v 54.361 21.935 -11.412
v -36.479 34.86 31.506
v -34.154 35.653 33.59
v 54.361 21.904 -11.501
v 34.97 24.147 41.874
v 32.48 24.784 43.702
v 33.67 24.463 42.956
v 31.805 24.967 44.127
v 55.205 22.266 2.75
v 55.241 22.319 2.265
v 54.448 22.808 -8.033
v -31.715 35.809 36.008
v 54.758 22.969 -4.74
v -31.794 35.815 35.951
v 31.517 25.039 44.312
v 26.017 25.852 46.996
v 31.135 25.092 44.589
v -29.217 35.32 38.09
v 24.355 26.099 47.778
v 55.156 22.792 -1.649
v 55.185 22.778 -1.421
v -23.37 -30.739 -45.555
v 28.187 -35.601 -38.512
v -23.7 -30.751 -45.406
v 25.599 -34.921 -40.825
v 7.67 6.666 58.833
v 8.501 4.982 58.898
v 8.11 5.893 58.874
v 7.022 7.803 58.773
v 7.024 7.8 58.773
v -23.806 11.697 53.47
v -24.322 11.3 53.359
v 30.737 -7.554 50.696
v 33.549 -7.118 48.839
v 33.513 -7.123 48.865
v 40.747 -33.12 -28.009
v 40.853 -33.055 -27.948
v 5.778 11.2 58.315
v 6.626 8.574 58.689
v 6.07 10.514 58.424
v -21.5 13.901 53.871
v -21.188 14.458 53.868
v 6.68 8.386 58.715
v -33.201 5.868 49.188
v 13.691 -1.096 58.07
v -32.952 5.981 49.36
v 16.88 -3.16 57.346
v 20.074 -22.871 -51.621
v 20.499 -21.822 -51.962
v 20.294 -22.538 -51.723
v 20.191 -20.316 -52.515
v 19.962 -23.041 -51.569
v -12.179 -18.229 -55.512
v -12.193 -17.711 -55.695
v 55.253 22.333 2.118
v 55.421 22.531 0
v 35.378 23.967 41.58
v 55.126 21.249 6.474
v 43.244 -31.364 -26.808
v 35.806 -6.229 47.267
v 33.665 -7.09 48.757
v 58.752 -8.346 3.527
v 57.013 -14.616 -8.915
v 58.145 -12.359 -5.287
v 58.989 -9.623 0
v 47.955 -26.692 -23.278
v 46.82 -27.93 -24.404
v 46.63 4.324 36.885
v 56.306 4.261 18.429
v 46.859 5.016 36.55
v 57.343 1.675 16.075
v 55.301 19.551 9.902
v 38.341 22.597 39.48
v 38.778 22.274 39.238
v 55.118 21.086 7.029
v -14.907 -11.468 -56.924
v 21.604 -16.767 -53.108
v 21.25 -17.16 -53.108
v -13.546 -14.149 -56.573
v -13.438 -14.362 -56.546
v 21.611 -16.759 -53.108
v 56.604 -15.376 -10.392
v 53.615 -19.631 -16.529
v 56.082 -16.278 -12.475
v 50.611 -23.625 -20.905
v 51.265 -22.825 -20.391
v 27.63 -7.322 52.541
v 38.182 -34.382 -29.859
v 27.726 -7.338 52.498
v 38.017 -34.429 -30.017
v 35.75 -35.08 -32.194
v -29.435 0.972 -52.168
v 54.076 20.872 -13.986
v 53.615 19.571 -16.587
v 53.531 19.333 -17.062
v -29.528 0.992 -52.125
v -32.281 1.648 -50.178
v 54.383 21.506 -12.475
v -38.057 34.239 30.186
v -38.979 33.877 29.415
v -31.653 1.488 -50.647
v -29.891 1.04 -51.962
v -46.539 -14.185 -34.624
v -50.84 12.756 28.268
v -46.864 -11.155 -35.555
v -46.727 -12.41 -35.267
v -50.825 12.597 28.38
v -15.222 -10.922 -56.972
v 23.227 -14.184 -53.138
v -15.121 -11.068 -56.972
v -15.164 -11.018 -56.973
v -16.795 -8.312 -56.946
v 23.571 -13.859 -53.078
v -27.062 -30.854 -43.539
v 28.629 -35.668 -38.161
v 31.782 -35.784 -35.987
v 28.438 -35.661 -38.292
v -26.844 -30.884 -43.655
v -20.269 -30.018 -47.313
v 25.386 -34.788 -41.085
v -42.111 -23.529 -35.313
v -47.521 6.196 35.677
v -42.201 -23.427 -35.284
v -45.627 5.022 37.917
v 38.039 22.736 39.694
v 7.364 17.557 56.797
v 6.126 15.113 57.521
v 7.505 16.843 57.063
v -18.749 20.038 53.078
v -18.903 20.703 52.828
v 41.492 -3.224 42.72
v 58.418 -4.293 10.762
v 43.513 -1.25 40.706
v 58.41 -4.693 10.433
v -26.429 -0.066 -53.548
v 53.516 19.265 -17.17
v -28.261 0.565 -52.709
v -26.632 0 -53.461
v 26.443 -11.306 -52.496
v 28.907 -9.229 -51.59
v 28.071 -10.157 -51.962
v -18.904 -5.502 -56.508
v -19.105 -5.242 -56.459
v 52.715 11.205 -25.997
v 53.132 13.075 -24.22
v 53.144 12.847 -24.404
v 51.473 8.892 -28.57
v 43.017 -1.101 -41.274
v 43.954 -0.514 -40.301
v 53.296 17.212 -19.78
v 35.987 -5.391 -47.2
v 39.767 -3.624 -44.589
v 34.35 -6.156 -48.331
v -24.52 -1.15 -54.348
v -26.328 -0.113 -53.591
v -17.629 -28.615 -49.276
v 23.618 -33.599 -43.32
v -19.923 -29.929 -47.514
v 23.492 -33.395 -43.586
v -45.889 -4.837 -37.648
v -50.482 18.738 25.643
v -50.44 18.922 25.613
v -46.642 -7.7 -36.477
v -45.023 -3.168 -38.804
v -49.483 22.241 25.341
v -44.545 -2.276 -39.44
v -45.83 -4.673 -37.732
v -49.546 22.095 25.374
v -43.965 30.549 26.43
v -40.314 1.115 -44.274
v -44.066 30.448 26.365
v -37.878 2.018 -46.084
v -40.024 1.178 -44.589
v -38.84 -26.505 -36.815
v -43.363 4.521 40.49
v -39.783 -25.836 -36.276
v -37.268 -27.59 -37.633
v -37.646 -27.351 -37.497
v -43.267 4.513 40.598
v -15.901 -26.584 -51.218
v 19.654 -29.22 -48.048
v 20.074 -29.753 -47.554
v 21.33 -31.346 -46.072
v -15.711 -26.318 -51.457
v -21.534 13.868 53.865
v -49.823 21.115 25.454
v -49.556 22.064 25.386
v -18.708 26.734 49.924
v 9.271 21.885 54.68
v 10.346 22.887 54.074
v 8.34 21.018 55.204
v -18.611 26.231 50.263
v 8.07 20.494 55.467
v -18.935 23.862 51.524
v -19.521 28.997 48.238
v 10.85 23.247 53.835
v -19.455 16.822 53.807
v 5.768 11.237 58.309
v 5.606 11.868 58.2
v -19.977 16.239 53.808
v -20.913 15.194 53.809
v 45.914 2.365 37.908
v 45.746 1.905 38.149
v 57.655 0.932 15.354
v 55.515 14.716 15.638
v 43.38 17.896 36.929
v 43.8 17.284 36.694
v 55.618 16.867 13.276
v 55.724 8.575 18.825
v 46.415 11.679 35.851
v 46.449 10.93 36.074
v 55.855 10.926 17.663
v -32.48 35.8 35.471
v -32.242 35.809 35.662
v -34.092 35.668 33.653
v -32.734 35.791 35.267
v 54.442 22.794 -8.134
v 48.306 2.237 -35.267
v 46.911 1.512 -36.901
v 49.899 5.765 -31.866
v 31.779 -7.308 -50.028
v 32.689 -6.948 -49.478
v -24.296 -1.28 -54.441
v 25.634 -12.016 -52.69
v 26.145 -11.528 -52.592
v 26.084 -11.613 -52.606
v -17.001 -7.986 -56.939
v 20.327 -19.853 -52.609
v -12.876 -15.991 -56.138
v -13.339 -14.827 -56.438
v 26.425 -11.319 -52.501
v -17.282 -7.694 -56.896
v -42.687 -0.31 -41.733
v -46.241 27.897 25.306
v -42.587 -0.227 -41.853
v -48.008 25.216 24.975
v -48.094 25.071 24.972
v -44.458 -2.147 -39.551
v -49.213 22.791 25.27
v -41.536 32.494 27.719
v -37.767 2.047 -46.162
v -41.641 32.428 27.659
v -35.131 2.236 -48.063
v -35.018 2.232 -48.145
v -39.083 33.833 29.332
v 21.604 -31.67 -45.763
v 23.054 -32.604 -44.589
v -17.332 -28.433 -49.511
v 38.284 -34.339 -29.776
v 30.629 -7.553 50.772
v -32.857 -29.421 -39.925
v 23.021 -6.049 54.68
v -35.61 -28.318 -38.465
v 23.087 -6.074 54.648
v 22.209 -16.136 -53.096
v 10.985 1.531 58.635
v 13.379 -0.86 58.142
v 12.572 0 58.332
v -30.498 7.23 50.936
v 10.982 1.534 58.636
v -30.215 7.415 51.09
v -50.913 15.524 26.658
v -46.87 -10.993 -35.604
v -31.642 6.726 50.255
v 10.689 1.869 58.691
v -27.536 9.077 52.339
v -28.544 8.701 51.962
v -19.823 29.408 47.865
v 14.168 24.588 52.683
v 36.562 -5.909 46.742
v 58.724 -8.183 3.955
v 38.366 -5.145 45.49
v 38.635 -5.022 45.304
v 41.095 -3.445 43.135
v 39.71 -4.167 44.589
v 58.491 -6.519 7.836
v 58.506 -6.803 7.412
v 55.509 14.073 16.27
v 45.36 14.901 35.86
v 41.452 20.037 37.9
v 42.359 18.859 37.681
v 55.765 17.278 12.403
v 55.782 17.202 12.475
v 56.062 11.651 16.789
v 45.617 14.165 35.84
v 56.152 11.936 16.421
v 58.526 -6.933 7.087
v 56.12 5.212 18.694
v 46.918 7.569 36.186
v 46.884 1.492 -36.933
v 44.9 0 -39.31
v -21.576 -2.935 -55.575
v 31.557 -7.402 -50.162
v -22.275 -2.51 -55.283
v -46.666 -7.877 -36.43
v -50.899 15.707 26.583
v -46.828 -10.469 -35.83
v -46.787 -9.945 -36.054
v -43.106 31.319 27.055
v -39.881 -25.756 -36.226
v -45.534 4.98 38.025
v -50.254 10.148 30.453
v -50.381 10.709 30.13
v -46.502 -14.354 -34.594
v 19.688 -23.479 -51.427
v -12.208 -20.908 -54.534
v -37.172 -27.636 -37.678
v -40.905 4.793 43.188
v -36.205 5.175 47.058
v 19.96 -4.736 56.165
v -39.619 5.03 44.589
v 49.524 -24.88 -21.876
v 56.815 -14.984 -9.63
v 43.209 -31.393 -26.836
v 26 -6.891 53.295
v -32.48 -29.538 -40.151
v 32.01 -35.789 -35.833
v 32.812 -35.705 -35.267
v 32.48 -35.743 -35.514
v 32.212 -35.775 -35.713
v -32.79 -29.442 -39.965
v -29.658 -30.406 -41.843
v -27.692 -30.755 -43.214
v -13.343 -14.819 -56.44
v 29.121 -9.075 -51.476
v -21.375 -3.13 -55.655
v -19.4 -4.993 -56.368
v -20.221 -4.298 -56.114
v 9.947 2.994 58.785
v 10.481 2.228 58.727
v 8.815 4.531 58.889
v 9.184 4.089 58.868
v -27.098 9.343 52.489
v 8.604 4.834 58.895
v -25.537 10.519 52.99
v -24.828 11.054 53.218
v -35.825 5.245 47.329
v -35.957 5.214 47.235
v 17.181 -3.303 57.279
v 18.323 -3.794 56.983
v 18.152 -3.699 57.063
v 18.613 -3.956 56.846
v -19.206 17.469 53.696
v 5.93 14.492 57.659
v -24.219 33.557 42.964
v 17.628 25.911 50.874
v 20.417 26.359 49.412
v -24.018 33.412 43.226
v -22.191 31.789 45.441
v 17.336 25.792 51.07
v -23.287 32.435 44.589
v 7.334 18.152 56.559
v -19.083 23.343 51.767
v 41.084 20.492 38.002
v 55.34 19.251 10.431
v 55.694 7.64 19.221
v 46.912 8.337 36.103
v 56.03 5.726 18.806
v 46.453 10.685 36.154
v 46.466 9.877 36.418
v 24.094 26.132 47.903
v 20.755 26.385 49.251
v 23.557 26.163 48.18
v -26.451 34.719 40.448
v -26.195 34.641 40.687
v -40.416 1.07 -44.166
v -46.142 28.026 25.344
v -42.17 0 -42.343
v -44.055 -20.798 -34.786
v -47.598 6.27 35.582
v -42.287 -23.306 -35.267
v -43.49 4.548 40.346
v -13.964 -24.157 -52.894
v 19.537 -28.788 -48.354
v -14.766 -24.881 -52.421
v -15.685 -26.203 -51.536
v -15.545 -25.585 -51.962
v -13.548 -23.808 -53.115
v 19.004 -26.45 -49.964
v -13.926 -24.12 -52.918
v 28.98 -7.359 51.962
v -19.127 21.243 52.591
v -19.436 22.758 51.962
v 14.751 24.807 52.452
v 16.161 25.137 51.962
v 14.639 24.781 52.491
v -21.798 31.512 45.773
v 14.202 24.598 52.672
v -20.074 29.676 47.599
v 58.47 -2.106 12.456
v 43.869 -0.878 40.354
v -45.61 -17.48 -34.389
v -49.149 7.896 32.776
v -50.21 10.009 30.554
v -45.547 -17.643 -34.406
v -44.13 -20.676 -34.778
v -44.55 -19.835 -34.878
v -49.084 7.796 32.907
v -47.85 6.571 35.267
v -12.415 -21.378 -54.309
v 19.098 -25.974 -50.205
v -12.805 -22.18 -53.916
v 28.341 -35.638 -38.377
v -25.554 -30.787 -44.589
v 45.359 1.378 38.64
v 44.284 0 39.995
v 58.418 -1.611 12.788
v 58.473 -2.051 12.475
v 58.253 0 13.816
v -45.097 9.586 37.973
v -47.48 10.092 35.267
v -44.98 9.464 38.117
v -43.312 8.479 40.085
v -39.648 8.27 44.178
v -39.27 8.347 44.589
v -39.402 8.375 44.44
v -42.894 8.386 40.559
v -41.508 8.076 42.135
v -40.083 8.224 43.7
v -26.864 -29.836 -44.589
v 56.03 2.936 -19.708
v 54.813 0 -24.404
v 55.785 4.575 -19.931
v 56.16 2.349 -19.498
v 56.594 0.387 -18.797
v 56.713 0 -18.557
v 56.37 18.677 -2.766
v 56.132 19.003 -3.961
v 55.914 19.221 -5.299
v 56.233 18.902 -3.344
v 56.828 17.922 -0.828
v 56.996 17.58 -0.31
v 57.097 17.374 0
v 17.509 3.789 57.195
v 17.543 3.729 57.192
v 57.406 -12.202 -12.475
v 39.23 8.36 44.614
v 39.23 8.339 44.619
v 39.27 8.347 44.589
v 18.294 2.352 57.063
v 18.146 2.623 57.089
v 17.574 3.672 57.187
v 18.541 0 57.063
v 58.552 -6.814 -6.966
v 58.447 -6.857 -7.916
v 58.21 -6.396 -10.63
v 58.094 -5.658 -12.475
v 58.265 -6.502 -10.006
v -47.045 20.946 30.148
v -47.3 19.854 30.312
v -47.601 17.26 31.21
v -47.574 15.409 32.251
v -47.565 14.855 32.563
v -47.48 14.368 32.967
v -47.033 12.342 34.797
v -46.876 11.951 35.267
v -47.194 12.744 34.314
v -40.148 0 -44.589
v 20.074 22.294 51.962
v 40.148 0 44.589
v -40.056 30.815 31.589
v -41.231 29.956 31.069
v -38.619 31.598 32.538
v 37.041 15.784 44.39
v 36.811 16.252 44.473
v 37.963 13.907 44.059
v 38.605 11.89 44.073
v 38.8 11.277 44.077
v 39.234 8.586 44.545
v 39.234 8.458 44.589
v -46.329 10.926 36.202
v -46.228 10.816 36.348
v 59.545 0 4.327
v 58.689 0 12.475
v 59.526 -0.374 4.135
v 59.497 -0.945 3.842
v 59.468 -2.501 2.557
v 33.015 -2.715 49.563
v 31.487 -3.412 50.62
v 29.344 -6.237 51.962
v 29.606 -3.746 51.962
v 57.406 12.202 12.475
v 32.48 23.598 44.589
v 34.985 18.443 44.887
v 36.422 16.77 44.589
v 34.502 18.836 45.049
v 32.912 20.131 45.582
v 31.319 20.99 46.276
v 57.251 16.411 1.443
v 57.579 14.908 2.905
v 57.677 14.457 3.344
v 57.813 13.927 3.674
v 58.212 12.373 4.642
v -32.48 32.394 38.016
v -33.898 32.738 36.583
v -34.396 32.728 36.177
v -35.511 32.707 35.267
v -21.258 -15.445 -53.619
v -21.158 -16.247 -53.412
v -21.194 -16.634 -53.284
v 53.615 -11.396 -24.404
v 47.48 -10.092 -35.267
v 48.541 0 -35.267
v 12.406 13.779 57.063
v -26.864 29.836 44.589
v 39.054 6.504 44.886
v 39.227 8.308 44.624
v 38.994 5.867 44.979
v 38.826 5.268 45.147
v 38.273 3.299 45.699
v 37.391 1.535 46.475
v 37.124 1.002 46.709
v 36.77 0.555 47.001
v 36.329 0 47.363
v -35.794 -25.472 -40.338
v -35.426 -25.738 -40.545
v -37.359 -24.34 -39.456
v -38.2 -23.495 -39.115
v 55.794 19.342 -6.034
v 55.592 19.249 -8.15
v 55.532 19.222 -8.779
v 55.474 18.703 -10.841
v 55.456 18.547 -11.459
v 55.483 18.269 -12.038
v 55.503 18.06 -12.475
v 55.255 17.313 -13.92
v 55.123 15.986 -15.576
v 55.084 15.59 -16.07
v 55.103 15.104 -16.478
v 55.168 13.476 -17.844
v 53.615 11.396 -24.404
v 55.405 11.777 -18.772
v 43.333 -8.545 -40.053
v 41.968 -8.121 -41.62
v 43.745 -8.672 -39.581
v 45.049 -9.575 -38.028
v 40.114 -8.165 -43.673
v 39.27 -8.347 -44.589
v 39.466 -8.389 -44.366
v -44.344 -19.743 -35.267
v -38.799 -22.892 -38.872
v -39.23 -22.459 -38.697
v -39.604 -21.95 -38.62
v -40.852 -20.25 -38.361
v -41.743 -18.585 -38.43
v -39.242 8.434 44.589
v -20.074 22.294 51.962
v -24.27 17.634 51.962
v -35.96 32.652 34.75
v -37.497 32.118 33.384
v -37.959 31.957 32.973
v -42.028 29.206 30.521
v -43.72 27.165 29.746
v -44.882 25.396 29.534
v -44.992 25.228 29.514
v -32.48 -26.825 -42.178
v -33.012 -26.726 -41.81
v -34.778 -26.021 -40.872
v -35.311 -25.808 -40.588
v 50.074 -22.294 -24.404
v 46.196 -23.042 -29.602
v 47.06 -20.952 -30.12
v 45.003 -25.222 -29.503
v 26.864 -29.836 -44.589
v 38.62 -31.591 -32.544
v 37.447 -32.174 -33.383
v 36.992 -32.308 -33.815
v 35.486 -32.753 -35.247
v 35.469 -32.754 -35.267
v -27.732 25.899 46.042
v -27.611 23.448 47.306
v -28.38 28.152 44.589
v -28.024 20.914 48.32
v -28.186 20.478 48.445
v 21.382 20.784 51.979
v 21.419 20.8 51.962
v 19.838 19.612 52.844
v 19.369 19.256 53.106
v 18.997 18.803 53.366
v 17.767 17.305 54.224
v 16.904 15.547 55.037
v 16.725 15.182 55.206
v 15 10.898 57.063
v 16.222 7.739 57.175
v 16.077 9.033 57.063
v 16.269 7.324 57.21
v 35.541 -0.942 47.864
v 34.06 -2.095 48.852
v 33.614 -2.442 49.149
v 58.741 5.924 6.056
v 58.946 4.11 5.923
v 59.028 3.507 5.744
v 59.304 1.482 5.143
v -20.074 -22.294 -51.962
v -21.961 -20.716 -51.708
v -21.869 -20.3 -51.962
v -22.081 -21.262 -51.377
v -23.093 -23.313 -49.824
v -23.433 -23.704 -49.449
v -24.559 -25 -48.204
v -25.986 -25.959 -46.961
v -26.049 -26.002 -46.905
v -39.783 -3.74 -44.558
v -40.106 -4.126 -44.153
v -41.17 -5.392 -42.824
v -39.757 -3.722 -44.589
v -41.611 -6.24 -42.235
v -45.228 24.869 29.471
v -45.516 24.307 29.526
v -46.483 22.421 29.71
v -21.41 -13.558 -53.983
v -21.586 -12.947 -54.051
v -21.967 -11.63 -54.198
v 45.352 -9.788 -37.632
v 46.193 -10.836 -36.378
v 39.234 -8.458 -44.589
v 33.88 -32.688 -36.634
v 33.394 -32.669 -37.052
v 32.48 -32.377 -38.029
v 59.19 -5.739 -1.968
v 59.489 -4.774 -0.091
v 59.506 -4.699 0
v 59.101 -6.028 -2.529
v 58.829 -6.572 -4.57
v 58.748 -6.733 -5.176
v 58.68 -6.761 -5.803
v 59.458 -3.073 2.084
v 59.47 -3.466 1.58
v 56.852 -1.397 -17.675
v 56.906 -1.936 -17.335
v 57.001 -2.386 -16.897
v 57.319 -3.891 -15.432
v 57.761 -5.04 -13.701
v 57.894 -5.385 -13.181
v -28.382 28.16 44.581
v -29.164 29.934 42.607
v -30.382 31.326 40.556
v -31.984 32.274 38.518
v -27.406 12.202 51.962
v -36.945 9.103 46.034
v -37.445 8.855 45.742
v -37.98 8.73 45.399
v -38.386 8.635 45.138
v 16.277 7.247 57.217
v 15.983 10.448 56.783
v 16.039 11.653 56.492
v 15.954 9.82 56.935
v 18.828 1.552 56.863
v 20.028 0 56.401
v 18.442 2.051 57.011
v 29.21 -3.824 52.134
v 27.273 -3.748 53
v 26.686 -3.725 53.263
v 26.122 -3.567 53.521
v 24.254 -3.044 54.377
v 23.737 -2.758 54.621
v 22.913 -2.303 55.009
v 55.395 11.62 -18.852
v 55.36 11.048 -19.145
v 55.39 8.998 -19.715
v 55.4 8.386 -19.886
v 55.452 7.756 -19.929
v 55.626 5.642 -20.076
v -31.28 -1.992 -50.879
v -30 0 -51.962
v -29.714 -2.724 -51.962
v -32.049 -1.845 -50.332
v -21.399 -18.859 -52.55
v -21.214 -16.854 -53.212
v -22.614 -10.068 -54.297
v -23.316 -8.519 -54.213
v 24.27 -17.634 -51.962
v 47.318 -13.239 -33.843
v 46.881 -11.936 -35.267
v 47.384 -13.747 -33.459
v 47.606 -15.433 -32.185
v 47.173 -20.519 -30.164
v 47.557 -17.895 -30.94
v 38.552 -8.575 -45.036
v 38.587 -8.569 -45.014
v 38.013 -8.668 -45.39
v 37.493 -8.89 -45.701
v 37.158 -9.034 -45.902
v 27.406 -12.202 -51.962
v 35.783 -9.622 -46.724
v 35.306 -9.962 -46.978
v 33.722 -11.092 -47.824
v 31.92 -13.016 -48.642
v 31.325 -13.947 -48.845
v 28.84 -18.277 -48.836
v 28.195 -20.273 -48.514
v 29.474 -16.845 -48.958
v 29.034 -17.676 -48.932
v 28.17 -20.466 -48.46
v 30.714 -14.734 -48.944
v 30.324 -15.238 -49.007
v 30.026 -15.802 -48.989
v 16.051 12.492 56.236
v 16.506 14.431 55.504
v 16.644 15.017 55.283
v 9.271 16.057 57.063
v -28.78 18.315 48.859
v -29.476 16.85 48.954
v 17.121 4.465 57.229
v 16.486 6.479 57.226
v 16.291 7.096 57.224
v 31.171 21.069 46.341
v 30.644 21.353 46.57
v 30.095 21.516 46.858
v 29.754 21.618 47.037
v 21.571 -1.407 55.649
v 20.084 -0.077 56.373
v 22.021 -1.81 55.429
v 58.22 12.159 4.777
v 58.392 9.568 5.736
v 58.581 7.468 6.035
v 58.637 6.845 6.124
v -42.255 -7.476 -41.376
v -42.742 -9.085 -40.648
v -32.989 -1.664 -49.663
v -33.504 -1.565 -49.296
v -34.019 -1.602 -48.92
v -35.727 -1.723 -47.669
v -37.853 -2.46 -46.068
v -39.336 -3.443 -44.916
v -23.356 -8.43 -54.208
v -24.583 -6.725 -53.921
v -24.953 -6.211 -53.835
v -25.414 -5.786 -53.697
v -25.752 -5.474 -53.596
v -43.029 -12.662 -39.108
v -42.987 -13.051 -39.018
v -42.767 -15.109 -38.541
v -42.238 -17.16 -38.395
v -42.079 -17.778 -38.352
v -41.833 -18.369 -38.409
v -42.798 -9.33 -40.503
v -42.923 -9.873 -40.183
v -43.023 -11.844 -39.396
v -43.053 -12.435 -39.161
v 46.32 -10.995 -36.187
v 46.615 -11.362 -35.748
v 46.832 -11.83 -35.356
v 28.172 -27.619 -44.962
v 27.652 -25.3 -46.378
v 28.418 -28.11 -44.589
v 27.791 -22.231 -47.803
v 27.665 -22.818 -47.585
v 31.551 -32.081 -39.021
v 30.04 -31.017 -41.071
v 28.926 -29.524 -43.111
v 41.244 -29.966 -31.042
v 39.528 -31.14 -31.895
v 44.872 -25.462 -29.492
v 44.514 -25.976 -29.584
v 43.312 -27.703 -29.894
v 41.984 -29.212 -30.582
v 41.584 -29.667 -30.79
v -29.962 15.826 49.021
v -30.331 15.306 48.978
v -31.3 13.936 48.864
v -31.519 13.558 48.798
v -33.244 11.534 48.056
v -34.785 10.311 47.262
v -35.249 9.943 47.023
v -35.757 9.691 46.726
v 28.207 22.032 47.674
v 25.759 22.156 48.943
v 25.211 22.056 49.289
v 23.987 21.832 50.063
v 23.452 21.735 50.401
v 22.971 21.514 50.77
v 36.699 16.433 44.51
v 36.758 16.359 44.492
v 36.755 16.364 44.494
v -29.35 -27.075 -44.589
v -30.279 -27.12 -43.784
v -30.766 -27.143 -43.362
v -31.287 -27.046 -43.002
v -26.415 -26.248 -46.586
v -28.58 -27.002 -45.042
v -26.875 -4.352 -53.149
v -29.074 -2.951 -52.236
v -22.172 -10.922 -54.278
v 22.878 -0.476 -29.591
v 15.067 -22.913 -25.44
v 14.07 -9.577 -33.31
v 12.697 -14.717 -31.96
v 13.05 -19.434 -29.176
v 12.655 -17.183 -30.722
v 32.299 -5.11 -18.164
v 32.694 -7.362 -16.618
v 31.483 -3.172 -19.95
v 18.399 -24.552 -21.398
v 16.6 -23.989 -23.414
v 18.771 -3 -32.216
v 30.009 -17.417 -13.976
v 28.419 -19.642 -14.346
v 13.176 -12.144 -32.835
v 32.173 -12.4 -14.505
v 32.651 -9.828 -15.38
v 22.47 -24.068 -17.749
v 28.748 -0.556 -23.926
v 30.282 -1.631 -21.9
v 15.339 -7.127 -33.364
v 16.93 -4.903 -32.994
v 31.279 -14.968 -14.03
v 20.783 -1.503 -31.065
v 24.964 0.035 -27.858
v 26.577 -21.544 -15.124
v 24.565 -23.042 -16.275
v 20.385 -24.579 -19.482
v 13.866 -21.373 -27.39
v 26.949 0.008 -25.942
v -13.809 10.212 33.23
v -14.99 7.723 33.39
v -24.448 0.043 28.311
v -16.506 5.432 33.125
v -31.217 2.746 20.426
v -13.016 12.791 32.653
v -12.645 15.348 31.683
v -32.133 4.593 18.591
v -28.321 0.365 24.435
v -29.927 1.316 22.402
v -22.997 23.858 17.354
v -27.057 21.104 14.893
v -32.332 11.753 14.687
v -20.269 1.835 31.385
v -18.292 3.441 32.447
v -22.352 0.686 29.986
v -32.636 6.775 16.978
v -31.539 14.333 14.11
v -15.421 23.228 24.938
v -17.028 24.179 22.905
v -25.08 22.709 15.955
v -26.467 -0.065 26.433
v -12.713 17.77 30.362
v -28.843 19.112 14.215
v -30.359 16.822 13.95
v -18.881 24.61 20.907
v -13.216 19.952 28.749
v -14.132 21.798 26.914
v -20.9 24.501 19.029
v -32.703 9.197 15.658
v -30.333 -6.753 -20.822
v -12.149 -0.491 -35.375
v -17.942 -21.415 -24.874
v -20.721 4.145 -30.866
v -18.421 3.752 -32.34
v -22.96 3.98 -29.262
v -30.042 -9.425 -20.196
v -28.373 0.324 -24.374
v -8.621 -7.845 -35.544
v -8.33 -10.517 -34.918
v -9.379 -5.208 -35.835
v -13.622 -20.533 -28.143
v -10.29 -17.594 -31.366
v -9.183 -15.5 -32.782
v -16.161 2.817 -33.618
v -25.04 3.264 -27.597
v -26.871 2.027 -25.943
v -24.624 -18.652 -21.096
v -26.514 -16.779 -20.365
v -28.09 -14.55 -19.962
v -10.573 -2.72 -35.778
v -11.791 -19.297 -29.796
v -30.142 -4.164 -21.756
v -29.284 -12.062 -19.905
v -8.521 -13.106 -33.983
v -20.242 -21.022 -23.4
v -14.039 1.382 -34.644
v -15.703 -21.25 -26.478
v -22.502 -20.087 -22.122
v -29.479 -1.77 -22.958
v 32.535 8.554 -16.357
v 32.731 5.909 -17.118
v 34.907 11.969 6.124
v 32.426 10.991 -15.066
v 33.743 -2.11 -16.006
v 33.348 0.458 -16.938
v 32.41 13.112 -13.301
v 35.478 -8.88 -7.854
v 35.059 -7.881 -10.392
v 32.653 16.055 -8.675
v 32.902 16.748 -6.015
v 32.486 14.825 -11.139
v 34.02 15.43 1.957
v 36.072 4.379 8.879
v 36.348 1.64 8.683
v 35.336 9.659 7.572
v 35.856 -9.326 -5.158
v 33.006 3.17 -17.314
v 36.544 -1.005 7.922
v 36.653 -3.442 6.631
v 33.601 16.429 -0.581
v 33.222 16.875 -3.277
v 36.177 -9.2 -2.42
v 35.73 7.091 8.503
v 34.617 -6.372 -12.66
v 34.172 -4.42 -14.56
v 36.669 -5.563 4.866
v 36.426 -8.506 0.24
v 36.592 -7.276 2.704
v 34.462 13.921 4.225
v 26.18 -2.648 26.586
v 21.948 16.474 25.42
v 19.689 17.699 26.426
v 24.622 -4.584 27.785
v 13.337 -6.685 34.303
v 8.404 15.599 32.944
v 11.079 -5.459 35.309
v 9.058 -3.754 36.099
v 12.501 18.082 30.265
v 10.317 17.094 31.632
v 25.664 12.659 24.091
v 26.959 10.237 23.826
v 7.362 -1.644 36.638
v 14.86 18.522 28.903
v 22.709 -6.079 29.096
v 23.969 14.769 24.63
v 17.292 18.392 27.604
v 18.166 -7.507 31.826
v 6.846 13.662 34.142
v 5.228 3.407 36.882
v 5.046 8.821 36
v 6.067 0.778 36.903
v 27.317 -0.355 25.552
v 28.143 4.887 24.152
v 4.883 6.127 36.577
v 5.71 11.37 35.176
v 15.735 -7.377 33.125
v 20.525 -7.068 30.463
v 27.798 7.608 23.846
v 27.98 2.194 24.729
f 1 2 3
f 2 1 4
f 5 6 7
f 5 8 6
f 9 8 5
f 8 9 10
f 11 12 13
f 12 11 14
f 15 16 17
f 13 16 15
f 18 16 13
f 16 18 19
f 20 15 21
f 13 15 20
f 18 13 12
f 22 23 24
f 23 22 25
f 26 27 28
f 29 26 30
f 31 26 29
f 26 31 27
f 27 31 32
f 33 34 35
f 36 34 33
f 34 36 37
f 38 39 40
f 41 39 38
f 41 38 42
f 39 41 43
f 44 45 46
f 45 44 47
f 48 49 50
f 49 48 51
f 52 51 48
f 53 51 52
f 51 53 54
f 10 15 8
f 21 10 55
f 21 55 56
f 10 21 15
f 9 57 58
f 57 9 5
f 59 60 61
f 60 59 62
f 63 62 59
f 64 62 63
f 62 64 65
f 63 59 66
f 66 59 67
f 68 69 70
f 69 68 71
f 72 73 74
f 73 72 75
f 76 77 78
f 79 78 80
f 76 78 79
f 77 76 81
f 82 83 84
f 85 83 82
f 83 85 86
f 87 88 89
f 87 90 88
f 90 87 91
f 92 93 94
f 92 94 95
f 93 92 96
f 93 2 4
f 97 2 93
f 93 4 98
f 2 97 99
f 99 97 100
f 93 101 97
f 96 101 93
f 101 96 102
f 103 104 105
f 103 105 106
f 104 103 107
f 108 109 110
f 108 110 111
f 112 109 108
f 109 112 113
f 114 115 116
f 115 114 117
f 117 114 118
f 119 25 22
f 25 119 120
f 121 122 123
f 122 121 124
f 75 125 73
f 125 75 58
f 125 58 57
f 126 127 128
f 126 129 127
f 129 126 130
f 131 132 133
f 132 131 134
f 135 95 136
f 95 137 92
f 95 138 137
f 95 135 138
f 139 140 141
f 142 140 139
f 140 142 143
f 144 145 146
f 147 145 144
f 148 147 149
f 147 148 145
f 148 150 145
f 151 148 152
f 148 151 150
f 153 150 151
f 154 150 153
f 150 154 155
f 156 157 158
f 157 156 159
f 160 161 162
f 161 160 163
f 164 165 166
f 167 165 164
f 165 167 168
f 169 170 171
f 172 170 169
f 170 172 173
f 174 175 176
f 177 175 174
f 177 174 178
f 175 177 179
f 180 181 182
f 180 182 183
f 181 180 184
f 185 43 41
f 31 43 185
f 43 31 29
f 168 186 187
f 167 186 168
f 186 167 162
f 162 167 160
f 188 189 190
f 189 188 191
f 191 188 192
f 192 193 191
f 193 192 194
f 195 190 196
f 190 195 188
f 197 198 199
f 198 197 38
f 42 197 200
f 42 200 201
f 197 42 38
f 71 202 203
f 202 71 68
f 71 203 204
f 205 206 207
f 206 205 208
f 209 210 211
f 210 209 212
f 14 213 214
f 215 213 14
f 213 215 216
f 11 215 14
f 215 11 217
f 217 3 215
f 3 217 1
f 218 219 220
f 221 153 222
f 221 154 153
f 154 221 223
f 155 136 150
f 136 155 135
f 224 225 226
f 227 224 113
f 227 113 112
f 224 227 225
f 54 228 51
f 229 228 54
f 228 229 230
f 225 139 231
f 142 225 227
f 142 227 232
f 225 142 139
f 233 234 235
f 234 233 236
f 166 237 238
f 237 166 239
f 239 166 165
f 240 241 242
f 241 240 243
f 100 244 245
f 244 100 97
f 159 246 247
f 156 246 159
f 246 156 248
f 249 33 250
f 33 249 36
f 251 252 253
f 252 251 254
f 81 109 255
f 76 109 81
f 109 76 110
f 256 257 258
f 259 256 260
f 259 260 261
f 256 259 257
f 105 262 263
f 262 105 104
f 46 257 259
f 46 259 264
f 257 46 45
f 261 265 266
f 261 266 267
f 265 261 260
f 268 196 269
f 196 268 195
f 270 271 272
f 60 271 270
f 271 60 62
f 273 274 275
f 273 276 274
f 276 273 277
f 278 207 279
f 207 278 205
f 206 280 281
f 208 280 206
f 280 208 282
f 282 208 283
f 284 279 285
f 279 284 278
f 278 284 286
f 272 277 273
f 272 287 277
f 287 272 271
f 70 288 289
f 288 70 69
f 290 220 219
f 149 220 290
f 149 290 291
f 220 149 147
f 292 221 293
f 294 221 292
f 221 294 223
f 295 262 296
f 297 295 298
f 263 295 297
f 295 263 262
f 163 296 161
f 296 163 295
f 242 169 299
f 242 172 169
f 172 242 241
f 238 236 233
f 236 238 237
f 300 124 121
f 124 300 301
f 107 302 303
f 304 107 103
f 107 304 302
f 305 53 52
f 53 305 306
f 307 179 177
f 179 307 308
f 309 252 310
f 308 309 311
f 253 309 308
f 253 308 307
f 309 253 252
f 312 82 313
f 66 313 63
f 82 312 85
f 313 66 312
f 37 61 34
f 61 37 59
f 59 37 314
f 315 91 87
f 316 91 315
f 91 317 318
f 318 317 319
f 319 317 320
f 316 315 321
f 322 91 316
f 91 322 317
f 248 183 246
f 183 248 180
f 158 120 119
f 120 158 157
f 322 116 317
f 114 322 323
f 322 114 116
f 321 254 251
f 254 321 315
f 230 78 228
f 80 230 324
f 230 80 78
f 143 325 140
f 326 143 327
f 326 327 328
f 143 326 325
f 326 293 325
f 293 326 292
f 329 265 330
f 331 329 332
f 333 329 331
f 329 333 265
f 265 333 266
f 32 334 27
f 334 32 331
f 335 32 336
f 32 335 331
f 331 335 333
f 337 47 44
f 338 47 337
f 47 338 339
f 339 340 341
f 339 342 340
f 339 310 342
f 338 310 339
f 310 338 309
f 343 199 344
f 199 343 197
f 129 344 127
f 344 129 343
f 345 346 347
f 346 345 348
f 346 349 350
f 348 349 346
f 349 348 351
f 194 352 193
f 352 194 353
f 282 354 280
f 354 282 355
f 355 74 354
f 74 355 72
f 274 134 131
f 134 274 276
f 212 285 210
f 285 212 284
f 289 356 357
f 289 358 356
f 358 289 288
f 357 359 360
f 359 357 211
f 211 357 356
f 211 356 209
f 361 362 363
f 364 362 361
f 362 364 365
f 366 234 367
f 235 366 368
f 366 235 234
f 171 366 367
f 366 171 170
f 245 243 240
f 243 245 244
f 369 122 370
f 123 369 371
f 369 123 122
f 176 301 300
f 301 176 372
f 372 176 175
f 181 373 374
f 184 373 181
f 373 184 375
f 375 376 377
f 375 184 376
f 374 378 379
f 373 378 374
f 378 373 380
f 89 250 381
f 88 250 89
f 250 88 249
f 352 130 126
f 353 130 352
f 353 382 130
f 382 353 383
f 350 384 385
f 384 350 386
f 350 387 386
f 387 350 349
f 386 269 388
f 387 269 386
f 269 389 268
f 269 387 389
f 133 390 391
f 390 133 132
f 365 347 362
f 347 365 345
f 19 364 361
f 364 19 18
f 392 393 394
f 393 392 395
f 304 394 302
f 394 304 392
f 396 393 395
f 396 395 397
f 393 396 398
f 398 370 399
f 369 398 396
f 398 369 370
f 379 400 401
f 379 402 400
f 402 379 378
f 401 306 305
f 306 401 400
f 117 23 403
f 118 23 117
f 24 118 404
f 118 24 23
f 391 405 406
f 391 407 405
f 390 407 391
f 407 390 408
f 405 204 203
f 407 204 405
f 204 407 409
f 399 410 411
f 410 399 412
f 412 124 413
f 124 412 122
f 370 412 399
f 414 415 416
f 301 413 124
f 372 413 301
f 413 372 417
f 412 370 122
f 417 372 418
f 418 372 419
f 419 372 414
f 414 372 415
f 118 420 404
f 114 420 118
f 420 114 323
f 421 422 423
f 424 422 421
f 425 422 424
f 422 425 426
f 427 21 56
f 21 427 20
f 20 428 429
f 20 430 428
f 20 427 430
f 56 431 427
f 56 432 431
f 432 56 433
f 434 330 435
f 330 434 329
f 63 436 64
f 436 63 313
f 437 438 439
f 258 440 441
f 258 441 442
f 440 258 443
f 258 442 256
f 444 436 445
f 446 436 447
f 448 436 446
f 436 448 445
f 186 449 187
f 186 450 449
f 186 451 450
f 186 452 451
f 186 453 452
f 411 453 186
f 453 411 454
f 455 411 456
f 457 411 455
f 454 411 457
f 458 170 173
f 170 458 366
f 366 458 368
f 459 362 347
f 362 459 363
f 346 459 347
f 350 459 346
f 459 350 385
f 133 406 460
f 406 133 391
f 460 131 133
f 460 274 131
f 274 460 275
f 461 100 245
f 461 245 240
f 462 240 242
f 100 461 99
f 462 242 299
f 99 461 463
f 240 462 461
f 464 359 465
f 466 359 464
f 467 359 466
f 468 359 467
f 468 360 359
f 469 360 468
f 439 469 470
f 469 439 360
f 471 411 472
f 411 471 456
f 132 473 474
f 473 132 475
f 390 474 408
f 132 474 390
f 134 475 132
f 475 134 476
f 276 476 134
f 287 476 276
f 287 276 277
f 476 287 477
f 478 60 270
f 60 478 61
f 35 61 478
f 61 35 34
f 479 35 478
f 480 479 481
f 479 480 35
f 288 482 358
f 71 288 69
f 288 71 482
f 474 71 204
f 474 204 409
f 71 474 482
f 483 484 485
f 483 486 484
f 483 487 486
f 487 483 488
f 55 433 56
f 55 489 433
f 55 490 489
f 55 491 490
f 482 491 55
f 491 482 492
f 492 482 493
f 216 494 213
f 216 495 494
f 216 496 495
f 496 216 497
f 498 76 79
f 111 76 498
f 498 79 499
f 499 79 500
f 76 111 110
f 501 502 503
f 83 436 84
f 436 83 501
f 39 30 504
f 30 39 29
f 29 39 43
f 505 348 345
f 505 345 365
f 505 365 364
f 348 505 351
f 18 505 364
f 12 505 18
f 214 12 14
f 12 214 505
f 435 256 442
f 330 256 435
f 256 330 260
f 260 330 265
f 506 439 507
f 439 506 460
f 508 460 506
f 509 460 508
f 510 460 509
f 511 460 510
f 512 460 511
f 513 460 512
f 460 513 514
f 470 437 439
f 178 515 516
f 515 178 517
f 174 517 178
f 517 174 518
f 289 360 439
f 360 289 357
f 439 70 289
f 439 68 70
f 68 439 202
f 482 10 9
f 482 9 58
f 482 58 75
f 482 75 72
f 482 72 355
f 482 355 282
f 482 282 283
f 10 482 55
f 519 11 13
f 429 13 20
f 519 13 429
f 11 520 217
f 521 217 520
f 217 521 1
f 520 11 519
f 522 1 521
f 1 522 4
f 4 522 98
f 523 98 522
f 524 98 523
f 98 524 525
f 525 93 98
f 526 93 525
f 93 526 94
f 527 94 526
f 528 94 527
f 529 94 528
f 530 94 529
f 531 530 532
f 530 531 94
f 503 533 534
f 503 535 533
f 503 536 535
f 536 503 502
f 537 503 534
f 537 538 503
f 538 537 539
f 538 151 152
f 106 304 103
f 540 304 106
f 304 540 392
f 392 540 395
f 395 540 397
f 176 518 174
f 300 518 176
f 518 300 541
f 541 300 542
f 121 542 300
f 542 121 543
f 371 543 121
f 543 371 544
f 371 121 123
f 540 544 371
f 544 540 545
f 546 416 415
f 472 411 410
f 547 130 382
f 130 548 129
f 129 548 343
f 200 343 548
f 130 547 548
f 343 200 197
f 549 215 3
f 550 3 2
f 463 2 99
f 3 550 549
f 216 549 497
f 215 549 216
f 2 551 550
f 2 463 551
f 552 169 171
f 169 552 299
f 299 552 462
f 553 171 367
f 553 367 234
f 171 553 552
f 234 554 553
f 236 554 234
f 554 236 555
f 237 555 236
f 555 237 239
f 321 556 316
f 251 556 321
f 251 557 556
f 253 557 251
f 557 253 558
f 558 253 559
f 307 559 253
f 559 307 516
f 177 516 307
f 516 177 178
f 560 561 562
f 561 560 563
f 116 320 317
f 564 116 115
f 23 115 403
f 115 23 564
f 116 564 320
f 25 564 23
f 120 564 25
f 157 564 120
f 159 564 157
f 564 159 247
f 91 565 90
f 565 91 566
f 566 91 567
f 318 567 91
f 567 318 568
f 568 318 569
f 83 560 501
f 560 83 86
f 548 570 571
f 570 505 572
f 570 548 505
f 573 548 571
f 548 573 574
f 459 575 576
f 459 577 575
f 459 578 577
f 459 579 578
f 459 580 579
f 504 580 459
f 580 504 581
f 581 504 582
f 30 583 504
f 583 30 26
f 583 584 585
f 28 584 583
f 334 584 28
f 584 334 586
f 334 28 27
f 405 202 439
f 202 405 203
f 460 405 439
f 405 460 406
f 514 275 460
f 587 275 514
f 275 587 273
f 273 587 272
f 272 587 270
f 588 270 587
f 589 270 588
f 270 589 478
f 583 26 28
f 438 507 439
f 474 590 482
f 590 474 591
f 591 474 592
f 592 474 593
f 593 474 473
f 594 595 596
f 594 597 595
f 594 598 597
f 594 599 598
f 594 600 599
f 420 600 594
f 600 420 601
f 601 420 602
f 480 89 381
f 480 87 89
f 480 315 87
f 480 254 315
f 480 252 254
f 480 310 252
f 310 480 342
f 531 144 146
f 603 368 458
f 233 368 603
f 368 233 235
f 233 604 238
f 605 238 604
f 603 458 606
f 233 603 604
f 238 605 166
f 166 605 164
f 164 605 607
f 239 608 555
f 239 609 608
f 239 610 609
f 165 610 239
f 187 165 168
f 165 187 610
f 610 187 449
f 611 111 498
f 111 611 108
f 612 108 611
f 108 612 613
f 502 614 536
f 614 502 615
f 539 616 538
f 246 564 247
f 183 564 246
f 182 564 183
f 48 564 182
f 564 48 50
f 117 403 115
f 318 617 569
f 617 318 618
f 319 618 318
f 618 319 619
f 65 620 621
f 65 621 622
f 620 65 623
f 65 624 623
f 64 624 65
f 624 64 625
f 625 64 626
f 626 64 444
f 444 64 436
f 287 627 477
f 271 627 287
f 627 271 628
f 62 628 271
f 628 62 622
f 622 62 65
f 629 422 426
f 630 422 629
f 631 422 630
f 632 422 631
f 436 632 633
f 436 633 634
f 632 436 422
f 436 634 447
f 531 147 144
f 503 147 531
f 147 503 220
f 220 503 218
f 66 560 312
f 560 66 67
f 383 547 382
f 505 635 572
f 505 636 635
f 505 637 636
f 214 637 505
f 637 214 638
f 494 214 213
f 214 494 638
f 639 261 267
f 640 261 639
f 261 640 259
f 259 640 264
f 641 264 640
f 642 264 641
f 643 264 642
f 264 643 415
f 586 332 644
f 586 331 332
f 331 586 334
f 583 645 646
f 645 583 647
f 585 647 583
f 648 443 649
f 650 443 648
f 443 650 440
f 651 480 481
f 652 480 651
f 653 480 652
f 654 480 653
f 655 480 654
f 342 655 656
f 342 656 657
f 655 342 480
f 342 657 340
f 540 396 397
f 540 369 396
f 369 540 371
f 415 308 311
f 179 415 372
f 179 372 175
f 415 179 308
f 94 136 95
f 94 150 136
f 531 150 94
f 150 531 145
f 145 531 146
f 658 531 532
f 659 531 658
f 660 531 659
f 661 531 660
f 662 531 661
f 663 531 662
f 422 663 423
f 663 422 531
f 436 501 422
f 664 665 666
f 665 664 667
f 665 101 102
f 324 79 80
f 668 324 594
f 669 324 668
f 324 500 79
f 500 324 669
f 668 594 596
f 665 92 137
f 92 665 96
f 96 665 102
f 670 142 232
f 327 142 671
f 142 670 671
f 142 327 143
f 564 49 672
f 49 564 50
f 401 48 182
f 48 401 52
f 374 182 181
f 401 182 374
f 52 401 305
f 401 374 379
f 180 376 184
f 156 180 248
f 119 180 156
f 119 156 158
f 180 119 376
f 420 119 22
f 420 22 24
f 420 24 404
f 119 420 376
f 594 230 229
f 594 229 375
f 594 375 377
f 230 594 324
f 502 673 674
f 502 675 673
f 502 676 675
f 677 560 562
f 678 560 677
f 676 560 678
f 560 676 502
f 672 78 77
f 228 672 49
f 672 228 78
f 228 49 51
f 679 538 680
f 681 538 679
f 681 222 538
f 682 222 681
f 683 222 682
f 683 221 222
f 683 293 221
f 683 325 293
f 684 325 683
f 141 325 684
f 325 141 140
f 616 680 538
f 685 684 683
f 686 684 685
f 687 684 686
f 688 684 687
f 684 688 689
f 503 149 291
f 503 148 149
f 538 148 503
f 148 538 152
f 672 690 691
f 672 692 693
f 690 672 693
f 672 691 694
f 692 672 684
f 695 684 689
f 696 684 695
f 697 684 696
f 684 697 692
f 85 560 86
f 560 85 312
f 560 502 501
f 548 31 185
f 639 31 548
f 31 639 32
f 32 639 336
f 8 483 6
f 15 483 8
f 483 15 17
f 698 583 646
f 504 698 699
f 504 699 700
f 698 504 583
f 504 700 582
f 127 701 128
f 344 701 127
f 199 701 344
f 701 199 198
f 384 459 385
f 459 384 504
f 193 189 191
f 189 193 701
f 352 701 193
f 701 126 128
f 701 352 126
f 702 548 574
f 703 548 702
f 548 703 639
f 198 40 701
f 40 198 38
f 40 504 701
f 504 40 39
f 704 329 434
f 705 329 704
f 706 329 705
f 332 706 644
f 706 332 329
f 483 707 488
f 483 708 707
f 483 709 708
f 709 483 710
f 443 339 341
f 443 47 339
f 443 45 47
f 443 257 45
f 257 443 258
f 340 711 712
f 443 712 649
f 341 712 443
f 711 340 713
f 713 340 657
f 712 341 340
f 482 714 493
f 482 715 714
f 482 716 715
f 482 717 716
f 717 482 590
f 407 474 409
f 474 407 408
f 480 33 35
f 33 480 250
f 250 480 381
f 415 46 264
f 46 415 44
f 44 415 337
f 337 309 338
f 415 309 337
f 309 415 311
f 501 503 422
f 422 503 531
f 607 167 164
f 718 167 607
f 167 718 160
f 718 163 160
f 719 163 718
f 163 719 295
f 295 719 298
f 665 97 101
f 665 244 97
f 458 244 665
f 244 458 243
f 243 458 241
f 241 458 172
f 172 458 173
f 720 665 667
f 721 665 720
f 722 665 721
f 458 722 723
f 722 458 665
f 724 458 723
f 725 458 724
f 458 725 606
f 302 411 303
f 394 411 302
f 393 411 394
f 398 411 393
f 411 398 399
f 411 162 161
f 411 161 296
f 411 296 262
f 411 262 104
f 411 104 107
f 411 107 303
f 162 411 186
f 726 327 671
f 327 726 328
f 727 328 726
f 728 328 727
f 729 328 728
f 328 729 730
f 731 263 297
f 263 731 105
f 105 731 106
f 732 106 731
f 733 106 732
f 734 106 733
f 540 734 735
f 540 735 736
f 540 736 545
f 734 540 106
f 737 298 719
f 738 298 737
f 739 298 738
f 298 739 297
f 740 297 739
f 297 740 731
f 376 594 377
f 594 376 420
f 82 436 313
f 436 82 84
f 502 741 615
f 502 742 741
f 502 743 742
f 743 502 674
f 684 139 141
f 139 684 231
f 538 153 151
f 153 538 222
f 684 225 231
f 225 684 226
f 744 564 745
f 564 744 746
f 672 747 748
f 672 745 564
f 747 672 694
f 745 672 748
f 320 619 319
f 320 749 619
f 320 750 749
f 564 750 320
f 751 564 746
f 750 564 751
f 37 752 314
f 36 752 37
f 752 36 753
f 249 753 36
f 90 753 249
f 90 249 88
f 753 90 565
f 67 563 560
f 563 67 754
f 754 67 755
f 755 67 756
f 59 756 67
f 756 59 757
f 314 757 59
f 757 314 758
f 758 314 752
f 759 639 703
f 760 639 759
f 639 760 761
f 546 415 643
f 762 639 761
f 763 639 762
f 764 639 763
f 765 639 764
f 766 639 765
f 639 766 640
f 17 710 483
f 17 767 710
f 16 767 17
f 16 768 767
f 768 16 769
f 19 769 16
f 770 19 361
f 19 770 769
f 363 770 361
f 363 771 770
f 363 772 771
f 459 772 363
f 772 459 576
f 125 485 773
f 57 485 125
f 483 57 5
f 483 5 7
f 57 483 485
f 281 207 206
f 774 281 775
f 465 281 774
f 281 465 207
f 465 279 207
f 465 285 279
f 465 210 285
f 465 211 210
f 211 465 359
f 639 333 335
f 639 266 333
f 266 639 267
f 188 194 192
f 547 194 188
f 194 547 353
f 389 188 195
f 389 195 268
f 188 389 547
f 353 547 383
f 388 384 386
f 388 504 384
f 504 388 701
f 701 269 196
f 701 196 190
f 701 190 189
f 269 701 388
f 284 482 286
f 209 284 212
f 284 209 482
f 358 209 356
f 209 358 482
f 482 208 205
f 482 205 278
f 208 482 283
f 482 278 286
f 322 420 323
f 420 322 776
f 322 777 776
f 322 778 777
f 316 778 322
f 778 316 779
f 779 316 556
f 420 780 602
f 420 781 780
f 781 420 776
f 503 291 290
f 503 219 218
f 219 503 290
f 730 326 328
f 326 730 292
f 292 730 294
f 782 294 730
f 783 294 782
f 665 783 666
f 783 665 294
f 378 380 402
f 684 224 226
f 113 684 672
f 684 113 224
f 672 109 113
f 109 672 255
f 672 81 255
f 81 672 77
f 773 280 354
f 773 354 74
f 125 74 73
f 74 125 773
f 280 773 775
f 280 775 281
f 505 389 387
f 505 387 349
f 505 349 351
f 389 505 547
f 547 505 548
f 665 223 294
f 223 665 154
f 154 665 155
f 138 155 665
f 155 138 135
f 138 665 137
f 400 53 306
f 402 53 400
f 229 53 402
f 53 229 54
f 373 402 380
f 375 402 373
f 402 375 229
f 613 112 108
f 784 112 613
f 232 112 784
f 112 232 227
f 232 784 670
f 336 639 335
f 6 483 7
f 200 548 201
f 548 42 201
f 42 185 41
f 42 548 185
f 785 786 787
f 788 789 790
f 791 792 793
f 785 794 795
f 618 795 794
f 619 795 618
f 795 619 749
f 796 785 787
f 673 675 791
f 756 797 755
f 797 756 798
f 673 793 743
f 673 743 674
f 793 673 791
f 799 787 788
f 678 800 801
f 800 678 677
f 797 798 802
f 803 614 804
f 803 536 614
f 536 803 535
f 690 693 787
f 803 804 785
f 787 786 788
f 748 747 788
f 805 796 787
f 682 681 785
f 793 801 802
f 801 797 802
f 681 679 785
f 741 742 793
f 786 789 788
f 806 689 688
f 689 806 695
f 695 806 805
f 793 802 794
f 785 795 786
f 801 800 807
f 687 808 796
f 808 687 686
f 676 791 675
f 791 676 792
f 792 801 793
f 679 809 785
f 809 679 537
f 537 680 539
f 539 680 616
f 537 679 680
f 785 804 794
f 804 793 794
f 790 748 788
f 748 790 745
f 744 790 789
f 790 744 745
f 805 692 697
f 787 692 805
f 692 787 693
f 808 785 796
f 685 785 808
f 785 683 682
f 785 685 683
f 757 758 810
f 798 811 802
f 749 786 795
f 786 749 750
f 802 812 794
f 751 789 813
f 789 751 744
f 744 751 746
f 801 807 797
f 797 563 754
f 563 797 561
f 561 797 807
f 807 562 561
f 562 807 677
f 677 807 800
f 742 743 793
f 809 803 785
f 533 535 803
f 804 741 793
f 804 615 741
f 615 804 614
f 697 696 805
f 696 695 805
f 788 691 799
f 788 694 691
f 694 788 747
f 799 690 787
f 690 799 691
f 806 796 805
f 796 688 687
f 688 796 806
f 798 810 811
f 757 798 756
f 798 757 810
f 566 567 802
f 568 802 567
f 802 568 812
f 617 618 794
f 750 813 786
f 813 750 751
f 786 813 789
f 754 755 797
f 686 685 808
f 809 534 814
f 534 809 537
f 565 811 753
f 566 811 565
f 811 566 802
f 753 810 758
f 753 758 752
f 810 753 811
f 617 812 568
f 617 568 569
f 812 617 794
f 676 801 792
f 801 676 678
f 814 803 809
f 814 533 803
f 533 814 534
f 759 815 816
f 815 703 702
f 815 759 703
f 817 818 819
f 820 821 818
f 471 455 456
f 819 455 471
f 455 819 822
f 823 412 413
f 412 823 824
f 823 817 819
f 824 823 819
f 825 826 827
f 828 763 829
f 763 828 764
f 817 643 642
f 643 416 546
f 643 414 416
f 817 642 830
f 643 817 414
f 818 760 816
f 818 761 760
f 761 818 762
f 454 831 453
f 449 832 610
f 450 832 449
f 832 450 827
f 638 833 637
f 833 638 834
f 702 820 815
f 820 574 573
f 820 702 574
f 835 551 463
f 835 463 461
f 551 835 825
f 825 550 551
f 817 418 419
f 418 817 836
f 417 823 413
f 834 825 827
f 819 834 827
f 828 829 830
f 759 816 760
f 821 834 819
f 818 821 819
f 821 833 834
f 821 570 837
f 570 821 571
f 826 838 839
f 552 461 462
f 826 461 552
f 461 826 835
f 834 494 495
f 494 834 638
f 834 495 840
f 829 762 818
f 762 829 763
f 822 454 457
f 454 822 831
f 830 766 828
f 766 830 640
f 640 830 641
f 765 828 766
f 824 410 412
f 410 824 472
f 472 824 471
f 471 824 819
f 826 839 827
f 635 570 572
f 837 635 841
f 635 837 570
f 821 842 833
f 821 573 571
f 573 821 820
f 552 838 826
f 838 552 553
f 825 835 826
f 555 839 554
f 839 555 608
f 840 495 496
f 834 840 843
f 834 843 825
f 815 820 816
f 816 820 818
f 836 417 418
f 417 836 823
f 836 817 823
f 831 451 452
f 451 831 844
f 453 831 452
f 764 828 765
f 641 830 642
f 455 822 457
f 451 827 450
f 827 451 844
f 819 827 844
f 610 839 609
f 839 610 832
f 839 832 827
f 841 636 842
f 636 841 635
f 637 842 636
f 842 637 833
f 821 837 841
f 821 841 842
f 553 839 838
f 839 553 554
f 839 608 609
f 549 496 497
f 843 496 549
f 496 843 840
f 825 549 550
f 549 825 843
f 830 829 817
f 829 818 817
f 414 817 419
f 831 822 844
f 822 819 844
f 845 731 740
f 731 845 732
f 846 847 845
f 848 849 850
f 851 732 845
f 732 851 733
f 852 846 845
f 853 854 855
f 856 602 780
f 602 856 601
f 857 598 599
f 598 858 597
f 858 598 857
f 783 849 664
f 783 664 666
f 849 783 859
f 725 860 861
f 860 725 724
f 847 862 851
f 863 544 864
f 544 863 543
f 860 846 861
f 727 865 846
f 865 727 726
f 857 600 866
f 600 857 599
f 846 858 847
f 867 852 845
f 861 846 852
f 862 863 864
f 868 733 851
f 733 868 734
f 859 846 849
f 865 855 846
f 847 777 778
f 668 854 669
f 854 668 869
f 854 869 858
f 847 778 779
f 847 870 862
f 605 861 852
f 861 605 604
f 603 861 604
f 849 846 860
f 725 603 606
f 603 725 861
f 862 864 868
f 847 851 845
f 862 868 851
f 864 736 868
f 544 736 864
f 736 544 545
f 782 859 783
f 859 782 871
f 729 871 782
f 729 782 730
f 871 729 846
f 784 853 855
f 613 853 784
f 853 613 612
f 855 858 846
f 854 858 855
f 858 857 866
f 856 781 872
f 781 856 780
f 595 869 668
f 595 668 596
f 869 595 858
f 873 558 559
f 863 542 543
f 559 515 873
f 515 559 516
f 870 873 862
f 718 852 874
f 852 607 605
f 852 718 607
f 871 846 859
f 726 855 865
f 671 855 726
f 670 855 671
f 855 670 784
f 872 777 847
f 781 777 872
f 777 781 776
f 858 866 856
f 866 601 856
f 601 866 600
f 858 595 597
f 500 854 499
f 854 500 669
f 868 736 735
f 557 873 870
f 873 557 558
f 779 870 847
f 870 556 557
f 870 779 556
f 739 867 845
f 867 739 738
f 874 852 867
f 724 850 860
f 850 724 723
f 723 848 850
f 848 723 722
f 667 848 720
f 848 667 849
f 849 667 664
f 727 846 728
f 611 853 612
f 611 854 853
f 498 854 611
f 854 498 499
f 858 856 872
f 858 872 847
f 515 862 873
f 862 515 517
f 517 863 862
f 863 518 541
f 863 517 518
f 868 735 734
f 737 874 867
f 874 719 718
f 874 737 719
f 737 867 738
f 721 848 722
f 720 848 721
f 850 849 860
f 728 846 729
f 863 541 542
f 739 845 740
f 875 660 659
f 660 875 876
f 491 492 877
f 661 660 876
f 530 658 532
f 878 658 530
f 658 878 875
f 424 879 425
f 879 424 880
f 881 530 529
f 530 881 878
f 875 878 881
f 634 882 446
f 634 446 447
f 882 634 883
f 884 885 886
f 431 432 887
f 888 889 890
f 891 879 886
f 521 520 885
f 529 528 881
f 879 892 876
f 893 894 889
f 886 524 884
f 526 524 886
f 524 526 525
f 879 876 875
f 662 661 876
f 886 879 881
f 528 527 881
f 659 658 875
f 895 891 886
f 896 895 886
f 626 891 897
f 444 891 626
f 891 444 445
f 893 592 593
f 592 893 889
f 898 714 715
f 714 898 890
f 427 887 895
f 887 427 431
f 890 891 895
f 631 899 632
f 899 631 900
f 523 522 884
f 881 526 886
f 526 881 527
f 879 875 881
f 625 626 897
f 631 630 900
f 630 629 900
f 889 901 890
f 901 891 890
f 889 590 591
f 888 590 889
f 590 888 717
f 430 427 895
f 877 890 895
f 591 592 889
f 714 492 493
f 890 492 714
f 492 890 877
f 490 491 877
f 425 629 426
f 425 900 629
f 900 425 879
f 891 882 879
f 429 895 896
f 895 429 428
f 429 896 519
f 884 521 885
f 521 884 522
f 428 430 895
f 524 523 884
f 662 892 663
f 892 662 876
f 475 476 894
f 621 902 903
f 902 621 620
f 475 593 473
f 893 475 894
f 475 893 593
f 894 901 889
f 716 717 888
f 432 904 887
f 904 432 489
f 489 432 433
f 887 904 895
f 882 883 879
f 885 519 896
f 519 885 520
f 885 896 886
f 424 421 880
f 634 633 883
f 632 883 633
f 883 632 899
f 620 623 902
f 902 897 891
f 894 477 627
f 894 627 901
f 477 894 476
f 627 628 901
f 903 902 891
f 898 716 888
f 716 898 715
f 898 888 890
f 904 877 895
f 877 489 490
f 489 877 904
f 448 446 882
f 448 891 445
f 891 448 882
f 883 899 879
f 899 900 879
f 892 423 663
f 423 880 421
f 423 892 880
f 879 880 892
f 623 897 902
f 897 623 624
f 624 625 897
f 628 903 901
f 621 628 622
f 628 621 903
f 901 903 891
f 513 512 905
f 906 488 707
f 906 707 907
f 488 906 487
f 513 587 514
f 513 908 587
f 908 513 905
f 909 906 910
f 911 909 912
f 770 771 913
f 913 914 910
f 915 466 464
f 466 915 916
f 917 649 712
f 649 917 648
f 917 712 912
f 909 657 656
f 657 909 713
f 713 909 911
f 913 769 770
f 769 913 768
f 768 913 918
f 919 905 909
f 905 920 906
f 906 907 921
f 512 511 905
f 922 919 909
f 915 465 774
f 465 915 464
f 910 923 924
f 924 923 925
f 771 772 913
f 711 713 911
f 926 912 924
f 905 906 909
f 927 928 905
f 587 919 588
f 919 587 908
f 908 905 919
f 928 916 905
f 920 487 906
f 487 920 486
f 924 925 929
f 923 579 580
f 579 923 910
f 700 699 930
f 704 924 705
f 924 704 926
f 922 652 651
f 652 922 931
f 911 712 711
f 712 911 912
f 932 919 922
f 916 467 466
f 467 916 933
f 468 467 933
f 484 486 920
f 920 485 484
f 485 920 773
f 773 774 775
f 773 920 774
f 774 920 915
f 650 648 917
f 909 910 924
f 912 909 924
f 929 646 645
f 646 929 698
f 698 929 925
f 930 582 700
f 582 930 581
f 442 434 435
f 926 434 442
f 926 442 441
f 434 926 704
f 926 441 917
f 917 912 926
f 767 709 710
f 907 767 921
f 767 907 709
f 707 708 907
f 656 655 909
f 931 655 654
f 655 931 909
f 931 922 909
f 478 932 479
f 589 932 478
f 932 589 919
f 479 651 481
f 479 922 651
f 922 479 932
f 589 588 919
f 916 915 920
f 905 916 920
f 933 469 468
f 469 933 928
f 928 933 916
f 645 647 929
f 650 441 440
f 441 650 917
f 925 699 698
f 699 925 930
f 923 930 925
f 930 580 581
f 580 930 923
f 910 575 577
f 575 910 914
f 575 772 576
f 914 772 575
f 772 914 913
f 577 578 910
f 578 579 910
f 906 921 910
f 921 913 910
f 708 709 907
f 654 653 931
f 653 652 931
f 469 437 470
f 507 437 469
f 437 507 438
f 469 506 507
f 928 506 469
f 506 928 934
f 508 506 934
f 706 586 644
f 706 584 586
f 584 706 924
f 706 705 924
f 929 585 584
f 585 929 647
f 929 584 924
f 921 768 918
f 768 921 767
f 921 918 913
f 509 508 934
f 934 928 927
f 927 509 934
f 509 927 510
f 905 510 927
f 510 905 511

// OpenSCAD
difference() {
	intersection() {
		hull() {
			rotate(a = -133.4455949914, v = [-0.0148006877, 0.7258767907, 0.0000000000]) {
				rotate(a = -90.0000000000, v = [-0.3826834324, 0.9238795325, 0.0000000000]) {
					cylinder(h = 60, r = 16.2000000000);
				}
			}
			rotate(a = -133.4455949914, v = [-0.0148006877, 0.7258767907, 0.0000000000]) {
				rotate(a = -90.0000000000, v = [0.3826834324, -0.9238795325, 0.0000000000]) {
					cylinder(h = 60, r = 16.2000000000);
				}
			}
			rotate(a = -133.4455949914, v = [-0.0148006877, 0.7258767907, 0.0000000000]) {
				rotate(a = -17.7962359238, v = [-0.2393271858, 0.1900891324, 0.0000000000]) {
					cylinder(h = 60, r = 16.2000000000);
				}
			}
			rotate(a = -133.4455949914, v = [-0.0148006877, 0.7258767907, 0.0000000000]) {
				rotate(a = -129.4241083656, v = [0.0720367210, 0.7691001854, -0.0000000000]) {
					cylinder(h = 60, r = 16.2000000000);
				}
			}
			rotate(a = -133.4455949914, v = [-0.0148006877, 0.7258767907, 0.0000000000]) {
				rotate(a = -160.2852209964, v = [0.1538538203, -0.3002099107, 0.0000000000]) {
					cylinder(h = 60, r = 16.2000000000);
				}
			}
		}
		sphere(r = 60);
	}
	union() {
		rotate(a = -133.4455949914, v = [-0.0148006877, 0.7258767907, 0.0000000000]) {
			rotate(a = -90.0000000000, v = [-0.3826834324, 0.9238795325, 0.0000000000]) {
				translate(v = [0, 0, 35]) {
					cylinder(h = 100, r = 13.2000000000);
				}
			}
		}
		rotate(a = -133.4455949914, v = [-0.0148006877, 0.7258767907, 0.0000000000]) {
			rotate(a = -90.0000000000, v = [0.3826834324, -0.9238795325, 0.0000000000]) {
				translate(v = [0, 0, 35]) {
					cylinder(h = 100, r = 13.2000000000);
				}
			}
		}
		rotate(a = -133.4455949914, v = [-0.0148006877, 0.7258767907, 0.0000000000]) {
			rotate(a = -17.7962359238, v = [-0.2393271858, 0.1900891324, 0.0000000000]) {
				translate(v = [0, 0, 35]) {
					cylinder(h = 100, r = 13.2000000000);
				}
			}
		}
		rotate(a = -133.4455949914, v = [-0.0148006877, 0.7258767907, 0.0000000000]) {
			rotate(a = -129.4241083656, v = [0.0720367210, 0.7691001854, -0.0000000000]) {
				translate(v = [0, 0, 35]) {
					cylinder(h = 100, r = 13.2000000000);
				}
			}
		}
		rotate(a = -133.4455949914, v = [-0.0148006877, 0.7258767907, 0.0000000000]) {
			rotate(a = -160.2852209964, v = [0.1538538203, -0.3002099107, 0.0000000000]) {
				translate(v = [0, 0, 35]) {
					cylinder(h = 100, r = 13.2000000000);
				}
			}
		}
	}
}
